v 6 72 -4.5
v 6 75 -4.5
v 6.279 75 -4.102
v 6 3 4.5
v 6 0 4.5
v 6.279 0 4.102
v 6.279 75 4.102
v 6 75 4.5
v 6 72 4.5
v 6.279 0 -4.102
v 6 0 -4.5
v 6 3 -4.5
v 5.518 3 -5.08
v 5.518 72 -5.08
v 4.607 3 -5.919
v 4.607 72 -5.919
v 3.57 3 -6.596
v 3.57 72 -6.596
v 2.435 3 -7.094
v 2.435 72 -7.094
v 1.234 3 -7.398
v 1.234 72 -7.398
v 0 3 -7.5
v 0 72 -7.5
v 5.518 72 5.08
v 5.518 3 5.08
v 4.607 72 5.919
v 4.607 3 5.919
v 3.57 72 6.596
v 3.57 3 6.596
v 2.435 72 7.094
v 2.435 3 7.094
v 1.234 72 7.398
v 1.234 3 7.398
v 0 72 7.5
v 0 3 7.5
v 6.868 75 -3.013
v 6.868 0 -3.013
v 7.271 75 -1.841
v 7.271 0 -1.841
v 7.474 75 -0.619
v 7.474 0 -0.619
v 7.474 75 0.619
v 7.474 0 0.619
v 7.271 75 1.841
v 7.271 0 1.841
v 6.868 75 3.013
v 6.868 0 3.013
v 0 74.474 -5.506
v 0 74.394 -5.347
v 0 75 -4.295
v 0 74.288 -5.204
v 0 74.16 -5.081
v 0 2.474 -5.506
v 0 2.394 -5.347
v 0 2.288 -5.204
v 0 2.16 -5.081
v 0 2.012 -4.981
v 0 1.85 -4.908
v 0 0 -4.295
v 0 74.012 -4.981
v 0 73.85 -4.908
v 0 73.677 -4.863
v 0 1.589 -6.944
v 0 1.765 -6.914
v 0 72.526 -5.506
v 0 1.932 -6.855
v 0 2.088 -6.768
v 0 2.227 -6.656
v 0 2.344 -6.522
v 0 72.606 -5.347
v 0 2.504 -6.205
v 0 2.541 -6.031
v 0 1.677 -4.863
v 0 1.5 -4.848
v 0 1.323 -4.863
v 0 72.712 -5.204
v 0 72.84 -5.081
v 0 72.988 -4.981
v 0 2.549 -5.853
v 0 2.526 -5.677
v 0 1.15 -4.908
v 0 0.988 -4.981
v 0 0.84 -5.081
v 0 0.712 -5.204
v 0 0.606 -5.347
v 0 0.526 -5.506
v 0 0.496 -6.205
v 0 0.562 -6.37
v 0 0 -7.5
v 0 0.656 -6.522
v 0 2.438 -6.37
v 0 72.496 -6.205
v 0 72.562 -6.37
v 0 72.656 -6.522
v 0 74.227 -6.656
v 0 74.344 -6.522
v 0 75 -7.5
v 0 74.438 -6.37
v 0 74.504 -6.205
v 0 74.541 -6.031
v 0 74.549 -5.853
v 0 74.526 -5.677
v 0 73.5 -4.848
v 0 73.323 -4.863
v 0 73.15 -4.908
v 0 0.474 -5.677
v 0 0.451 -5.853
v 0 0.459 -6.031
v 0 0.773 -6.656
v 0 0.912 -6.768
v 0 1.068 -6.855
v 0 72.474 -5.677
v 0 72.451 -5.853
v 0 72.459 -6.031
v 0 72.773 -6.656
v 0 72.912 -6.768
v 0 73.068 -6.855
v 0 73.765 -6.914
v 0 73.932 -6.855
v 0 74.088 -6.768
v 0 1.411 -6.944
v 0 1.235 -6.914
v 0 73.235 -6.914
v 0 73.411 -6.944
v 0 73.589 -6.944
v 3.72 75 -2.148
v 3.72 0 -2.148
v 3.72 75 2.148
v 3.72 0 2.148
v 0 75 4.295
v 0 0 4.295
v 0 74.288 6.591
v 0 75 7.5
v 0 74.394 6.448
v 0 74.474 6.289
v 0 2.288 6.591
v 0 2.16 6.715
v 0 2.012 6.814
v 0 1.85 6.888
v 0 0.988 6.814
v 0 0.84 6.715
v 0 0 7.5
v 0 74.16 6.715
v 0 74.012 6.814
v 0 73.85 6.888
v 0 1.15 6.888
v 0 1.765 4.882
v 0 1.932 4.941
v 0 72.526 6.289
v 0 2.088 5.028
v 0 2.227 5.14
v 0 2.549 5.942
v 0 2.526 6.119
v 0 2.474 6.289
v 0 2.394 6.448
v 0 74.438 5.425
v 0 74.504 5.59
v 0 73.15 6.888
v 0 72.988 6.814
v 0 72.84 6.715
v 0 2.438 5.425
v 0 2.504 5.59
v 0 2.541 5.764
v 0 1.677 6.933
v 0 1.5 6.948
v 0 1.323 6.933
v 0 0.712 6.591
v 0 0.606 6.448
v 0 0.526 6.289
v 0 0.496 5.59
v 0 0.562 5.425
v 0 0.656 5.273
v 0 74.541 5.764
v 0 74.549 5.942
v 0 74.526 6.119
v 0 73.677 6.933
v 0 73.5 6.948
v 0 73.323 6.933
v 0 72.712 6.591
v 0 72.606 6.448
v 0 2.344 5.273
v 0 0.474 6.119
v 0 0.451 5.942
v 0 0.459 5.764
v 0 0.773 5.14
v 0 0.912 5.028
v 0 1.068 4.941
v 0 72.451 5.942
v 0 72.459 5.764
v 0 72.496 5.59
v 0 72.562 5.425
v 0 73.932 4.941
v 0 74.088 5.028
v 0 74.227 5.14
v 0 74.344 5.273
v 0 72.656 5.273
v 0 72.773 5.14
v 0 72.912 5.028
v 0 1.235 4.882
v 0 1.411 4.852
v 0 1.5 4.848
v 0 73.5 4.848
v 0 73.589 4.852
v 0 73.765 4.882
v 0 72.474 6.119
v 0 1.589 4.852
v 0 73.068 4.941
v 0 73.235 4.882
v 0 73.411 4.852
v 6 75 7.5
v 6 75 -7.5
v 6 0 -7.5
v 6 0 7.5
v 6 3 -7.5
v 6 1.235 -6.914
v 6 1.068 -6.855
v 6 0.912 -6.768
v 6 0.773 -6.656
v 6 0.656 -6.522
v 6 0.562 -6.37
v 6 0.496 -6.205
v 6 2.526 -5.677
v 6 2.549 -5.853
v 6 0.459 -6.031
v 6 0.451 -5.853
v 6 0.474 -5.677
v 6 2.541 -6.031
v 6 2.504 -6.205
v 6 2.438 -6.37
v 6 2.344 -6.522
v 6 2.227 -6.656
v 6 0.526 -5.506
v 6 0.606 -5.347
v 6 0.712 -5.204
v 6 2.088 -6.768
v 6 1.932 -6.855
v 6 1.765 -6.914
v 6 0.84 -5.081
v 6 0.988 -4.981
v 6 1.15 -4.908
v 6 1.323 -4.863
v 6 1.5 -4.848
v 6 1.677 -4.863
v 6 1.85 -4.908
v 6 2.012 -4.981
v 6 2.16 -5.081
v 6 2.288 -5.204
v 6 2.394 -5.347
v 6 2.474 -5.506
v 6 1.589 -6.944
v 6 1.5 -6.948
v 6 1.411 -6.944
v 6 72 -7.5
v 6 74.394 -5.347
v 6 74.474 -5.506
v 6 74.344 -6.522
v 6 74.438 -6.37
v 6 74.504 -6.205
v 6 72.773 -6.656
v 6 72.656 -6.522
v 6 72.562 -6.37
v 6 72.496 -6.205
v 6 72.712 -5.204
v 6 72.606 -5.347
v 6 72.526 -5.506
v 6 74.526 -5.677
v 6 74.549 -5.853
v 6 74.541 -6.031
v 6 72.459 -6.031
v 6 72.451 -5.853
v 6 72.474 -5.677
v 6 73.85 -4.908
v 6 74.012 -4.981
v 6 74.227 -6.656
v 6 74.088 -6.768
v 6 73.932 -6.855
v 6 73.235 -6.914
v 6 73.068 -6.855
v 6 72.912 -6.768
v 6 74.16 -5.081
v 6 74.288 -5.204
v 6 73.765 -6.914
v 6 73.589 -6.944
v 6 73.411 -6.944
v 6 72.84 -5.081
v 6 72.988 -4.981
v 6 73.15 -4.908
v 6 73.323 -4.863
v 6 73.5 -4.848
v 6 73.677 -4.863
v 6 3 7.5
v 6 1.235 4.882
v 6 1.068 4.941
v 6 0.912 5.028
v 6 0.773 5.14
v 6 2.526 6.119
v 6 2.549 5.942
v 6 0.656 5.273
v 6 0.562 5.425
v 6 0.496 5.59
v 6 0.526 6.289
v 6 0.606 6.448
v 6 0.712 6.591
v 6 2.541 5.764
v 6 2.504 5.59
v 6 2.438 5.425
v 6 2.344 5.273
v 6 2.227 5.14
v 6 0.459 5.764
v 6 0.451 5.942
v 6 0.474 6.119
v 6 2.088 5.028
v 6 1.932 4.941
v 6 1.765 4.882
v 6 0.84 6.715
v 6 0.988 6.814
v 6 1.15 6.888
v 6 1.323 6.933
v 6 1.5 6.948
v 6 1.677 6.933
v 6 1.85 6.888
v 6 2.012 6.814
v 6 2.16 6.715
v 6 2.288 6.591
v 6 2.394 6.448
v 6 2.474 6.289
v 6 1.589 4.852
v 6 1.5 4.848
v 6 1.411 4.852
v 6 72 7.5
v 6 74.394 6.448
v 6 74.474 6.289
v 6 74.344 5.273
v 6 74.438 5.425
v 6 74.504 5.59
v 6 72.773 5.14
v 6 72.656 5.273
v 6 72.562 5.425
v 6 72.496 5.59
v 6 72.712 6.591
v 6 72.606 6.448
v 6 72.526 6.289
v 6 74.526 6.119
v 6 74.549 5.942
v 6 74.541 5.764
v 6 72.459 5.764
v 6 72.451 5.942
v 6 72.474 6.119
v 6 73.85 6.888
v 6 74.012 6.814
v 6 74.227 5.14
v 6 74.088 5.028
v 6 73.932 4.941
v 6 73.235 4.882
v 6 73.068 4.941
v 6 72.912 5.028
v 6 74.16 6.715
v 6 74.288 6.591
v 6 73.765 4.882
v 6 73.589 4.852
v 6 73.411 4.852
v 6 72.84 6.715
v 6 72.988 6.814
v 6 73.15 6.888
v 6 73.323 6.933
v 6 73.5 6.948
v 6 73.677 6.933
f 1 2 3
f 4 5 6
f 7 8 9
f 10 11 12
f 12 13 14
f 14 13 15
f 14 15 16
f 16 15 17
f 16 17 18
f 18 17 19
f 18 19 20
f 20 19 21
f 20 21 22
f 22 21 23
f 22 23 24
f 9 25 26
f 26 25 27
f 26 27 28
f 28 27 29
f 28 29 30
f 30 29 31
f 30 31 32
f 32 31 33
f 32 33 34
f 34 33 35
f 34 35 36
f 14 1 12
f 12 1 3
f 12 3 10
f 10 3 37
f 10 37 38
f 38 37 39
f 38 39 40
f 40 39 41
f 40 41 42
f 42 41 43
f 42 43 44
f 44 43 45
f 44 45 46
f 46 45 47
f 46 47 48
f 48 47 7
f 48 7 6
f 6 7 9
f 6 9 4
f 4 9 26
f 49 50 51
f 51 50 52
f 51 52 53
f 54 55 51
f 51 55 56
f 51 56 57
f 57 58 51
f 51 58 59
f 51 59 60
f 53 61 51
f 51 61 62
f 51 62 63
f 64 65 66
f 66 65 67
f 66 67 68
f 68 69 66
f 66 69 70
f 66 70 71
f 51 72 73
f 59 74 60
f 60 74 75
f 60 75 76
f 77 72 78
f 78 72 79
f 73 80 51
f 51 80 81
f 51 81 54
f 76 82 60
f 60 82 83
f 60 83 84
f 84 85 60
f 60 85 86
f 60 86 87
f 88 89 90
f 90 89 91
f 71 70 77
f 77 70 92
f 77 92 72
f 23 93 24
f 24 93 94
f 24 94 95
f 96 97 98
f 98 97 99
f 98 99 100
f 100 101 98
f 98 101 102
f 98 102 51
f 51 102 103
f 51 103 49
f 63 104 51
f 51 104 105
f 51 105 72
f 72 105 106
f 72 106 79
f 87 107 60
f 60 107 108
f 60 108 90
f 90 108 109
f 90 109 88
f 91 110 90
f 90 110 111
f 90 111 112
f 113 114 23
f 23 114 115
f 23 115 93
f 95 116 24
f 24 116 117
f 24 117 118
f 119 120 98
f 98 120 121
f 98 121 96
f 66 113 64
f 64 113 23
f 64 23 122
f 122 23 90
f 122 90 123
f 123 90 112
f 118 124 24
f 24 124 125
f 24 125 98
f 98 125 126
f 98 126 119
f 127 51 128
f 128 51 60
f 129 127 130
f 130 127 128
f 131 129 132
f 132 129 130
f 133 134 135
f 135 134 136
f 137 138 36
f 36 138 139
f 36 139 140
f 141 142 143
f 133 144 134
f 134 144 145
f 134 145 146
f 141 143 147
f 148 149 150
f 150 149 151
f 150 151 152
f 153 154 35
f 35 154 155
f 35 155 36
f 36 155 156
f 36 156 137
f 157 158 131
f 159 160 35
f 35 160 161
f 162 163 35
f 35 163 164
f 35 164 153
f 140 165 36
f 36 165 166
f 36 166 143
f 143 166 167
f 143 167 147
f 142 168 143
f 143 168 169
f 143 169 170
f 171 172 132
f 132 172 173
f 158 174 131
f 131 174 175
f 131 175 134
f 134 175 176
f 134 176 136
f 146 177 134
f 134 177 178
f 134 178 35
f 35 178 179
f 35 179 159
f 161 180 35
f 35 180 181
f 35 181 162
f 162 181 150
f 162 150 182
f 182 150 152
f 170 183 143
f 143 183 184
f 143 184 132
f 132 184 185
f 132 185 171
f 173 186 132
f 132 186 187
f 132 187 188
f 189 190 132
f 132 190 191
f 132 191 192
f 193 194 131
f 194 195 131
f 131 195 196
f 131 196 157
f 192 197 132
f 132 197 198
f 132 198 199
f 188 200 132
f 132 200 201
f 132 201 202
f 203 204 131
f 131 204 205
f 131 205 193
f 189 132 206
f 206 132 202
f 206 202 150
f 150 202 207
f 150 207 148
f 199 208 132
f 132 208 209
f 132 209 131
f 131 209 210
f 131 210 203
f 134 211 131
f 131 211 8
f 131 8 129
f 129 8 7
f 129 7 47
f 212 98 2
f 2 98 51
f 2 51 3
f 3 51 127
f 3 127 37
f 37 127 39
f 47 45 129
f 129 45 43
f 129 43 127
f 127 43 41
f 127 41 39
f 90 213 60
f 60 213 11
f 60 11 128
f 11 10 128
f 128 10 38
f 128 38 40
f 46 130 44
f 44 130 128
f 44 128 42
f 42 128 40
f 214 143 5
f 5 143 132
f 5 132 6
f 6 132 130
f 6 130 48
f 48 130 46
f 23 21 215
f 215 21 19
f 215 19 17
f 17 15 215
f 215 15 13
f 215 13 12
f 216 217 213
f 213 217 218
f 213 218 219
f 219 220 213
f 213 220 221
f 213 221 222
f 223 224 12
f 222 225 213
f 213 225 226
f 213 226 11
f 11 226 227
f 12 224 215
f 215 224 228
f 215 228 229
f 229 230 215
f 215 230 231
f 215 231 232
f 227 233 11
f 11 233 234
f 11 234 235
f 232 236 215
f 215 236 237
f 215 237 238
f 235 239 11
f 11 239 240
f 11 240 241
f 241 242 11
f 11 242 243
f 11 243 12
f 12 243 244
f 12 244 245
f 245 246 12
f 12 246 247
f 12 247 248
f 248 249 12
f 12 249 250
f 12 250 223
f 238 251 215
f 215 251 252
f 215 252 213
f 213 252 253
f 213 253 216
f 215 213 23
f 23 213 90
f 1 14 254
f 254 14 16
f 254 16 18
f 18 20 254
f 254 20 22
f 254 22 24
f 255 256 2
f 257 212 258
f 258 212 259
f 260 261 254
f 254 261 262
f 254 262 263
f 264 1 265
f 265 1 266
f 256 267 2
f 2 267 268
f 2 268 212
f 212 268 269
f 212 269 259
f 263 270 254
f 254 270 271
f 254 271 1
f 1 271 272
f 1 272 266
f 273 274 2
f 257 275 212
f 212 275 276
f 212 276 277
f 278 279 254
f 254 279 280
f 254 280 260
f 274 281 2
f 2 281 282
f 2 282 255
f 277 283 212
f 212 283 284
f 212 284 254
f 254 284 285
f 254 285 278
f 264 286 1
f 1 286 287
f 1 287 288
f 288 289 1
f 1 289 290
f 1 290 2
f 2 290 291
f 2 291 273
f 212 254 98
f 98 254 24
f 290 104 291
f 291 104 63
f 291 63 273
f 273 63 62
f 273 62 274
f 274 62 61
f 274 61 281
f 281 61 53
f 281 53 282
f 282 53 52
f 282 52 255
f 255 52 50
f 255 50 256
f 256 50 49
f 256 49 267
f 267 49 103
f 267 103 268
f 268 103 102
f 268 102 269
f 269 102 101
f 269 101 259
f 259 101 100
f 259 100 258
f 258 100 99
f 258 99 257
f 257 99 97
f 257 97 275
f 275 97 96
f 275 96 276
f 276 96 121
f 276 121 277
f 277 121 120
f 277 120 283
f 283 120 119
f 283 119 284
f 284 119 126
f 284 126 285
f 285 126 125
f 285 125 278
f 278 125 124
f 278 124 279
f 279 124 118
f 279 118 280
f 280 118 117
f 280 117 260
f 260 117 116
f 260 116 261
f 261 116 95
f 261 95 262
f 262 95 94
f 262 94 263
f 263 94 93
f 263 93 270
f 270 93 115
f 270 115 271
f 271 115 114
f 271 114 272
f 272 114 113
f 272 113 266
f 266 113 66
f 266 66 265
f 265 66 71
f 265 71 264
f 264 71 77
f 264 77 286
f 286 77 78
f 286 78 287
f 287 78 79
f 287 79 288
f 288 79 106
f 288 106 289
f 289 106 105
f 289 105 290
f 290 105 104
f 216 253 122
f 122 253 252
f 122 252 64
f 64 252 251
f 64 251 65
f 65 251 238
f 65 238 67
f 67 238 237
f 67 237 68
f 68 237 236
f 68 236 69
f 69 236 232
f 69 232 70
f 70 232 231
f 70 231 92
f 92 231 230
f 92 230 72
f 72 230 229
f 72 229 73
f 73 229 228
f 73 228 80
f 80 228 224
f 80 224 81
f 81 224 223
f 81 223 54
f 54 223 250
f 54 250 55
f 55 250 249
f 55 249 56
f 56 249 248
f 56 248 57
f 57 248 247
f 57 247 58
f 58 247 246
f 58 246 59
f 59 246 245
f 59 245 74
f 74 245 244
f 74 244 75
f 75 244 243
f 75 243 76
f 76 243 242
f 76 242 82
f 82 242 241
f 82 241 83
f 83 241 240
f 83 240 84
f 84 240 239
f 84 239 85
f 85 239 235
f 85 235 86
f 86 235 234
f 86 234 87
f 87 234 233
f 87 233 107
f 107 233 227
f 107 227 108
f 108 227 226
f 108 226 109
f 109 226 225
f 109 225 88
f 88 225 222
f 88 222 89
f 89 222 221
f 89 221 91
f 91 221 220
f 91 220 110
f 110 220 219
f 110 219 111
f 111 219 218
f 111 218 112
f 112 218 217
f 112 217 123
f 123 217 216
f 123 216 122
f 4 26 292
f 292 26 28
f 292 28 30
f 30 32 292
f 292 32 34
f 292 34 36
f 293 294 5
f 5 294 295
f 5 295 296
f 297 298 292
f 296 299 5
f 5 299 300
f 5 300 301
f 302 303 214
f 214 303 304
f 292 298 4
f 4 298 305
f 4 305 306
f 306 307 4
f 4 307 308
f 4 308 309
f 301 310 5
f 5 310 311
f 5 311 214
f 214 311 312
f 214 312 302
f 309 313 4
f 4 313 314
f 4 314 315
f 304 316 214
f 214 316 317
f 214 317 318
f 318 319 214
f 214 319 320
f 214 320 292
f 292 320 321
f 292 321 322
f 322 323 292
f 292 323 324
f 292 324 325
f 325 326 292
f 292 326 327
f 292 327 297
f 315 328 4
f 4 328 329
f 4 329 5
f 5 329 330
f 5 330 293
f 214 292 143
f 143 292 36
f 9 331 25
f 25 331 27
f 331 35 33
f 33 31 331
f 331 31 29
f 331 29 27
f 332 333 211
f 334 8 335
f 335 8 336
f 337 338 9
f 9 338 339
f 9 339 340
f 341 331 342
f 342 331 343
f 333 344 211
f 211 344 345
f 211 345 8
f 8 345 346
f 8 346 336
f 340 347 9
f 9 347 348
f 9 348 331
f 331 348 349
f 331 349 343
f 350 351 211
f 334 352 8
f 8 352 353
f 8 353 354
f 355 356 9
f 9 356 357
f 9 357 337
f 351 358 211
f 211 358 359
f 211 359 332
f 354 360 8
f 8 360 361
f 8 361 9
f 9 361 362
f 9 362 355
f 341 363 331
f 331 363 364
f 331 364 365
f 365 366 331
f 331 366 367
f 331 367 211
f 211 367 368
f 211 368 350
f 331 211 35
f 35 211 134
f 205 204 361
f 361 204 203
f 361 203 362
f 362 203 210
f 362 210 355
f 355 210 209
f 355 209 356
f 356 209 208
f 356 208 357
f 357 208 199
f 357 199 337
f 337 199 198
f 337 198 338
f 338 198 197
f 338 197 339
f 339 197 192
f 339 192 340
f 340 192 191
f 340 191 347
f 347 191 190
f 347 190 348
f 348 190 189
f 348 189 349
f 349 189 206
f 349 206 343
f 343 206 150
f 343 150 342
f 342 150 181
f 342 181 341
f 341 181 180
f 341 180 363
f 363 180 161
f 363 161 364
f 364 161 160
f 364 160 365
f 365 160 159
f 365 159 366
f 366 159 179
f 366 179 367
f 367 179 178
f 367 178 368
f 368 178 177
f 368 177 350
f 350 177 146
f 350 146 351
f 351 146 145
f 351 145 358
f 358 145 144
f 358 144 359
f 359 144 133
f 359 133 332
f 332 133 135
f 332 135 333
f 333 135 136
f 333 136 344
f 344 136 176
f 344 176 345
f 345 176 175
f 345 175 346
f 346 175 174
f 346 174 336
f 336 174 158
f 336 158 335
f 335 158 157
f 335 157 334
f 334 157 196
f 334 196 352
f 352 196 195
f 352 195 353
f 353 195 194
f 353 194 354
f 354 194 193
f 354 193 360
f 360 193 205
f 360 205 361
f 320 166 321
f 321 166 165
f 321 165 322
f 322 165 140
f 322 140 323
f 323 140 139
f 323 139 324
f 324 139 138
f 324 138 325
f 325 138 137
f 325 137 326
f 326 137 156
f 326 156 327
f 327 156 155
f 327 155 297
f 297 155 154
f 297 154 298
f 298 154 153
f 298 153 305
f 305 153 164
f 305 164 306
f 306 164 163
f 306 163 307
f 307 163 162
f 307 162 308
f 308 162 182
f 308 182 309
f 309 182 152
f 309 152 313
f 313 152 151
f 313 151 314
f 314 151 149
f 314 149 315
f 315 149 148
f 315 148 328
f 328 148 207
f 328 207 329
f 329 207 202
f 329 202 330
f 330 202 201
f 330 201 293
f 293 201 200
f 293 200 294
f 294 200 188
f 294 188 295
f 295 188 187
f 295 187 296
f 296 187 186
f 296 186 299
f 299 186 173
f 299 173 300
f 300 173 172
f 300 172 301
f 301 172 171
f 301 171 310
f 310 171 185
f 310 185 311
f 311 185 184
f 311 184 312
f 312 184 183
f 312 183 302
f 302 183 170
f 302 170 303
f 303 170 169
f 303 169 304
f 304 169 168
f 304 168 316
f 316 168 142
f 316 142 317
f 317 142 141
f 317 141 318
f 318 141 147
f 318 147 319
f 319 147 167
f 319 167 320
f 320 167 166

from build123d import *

# Parameters (mm, degrees)
MAIN_BODY_DEPTH                = 75
SKETCH2_W                      = 3.204513997
SKETCH2_H                      = 3
BACK_SCREW_HOLES_SUPPORT_DEPTH = 6
SKETCH3_R                      = 1.05
BACK_SCREW_HOLES_DEPTH         = 76.746287038


with BuildPart() as part:
    # Sketch1 → Main Body (new body)
    with BuildSketch(Plane(origin=(0, 0, 0), x_dir=(1, 0, 0), z_dir=(0, 1, 0))):
        with BuildLine():
            Line((0, 7.5), (0, 4.295486003))
            Line((0, 4.295486003), (3.72, 2.147743001))
            Line((3.72, 2.147743001), (3.72, -2.147743001))
            Line((3.72, -2.147743001), (0, -4.295486003))
            Line((0, -4.295486003), (0, -7.5))
            ThreePointArc((0, -7.5), (7.5, 0), (0, 7.5))
        make_face()
    extrude(amount=MAIN_BODY_DEPTH)

    # Sketch2 → Back Screw Holes Support (add)
    with BuildSketch(Plane.ZY):
        with Locations((-5.897743002, 1.5)):
            Rectangle(SKETCH2_W, SKETCH2_H)
        with Locations((-5.897743002, 73.5)):
            Rectangle(SKETCH2_W, SKETCH2_H)
    back_screw_holes_support = extrude(amount=-BACK_SCREW_HOLES_SUPPORT_DEPTH)

    # Sketch3 → Back Screw Holes (cut, through all)
    with BuildSketch(Plane.ZY):
        with Locations((-5.897743001, 73.5)):
            Circle(SKETCH3_R)
        with Locations((-5.897743001, 1.5)):
            Circle(SKETCH3_R)
    back_screw_holes = extrude(amount=-BACK_SCREW_HOLES_DEPTH, mode=Mode.SUBTRACT)

    # Front Screw Holes and Support: Back Screw Holes Support, Back Screw Holes across plane
    add(back_screw_holes_support.mirror(Plane.XY))
    add(back_screw_holes.mirror(Plane.XY), mode=Mode.SUBTRACT)


solid = part.part
